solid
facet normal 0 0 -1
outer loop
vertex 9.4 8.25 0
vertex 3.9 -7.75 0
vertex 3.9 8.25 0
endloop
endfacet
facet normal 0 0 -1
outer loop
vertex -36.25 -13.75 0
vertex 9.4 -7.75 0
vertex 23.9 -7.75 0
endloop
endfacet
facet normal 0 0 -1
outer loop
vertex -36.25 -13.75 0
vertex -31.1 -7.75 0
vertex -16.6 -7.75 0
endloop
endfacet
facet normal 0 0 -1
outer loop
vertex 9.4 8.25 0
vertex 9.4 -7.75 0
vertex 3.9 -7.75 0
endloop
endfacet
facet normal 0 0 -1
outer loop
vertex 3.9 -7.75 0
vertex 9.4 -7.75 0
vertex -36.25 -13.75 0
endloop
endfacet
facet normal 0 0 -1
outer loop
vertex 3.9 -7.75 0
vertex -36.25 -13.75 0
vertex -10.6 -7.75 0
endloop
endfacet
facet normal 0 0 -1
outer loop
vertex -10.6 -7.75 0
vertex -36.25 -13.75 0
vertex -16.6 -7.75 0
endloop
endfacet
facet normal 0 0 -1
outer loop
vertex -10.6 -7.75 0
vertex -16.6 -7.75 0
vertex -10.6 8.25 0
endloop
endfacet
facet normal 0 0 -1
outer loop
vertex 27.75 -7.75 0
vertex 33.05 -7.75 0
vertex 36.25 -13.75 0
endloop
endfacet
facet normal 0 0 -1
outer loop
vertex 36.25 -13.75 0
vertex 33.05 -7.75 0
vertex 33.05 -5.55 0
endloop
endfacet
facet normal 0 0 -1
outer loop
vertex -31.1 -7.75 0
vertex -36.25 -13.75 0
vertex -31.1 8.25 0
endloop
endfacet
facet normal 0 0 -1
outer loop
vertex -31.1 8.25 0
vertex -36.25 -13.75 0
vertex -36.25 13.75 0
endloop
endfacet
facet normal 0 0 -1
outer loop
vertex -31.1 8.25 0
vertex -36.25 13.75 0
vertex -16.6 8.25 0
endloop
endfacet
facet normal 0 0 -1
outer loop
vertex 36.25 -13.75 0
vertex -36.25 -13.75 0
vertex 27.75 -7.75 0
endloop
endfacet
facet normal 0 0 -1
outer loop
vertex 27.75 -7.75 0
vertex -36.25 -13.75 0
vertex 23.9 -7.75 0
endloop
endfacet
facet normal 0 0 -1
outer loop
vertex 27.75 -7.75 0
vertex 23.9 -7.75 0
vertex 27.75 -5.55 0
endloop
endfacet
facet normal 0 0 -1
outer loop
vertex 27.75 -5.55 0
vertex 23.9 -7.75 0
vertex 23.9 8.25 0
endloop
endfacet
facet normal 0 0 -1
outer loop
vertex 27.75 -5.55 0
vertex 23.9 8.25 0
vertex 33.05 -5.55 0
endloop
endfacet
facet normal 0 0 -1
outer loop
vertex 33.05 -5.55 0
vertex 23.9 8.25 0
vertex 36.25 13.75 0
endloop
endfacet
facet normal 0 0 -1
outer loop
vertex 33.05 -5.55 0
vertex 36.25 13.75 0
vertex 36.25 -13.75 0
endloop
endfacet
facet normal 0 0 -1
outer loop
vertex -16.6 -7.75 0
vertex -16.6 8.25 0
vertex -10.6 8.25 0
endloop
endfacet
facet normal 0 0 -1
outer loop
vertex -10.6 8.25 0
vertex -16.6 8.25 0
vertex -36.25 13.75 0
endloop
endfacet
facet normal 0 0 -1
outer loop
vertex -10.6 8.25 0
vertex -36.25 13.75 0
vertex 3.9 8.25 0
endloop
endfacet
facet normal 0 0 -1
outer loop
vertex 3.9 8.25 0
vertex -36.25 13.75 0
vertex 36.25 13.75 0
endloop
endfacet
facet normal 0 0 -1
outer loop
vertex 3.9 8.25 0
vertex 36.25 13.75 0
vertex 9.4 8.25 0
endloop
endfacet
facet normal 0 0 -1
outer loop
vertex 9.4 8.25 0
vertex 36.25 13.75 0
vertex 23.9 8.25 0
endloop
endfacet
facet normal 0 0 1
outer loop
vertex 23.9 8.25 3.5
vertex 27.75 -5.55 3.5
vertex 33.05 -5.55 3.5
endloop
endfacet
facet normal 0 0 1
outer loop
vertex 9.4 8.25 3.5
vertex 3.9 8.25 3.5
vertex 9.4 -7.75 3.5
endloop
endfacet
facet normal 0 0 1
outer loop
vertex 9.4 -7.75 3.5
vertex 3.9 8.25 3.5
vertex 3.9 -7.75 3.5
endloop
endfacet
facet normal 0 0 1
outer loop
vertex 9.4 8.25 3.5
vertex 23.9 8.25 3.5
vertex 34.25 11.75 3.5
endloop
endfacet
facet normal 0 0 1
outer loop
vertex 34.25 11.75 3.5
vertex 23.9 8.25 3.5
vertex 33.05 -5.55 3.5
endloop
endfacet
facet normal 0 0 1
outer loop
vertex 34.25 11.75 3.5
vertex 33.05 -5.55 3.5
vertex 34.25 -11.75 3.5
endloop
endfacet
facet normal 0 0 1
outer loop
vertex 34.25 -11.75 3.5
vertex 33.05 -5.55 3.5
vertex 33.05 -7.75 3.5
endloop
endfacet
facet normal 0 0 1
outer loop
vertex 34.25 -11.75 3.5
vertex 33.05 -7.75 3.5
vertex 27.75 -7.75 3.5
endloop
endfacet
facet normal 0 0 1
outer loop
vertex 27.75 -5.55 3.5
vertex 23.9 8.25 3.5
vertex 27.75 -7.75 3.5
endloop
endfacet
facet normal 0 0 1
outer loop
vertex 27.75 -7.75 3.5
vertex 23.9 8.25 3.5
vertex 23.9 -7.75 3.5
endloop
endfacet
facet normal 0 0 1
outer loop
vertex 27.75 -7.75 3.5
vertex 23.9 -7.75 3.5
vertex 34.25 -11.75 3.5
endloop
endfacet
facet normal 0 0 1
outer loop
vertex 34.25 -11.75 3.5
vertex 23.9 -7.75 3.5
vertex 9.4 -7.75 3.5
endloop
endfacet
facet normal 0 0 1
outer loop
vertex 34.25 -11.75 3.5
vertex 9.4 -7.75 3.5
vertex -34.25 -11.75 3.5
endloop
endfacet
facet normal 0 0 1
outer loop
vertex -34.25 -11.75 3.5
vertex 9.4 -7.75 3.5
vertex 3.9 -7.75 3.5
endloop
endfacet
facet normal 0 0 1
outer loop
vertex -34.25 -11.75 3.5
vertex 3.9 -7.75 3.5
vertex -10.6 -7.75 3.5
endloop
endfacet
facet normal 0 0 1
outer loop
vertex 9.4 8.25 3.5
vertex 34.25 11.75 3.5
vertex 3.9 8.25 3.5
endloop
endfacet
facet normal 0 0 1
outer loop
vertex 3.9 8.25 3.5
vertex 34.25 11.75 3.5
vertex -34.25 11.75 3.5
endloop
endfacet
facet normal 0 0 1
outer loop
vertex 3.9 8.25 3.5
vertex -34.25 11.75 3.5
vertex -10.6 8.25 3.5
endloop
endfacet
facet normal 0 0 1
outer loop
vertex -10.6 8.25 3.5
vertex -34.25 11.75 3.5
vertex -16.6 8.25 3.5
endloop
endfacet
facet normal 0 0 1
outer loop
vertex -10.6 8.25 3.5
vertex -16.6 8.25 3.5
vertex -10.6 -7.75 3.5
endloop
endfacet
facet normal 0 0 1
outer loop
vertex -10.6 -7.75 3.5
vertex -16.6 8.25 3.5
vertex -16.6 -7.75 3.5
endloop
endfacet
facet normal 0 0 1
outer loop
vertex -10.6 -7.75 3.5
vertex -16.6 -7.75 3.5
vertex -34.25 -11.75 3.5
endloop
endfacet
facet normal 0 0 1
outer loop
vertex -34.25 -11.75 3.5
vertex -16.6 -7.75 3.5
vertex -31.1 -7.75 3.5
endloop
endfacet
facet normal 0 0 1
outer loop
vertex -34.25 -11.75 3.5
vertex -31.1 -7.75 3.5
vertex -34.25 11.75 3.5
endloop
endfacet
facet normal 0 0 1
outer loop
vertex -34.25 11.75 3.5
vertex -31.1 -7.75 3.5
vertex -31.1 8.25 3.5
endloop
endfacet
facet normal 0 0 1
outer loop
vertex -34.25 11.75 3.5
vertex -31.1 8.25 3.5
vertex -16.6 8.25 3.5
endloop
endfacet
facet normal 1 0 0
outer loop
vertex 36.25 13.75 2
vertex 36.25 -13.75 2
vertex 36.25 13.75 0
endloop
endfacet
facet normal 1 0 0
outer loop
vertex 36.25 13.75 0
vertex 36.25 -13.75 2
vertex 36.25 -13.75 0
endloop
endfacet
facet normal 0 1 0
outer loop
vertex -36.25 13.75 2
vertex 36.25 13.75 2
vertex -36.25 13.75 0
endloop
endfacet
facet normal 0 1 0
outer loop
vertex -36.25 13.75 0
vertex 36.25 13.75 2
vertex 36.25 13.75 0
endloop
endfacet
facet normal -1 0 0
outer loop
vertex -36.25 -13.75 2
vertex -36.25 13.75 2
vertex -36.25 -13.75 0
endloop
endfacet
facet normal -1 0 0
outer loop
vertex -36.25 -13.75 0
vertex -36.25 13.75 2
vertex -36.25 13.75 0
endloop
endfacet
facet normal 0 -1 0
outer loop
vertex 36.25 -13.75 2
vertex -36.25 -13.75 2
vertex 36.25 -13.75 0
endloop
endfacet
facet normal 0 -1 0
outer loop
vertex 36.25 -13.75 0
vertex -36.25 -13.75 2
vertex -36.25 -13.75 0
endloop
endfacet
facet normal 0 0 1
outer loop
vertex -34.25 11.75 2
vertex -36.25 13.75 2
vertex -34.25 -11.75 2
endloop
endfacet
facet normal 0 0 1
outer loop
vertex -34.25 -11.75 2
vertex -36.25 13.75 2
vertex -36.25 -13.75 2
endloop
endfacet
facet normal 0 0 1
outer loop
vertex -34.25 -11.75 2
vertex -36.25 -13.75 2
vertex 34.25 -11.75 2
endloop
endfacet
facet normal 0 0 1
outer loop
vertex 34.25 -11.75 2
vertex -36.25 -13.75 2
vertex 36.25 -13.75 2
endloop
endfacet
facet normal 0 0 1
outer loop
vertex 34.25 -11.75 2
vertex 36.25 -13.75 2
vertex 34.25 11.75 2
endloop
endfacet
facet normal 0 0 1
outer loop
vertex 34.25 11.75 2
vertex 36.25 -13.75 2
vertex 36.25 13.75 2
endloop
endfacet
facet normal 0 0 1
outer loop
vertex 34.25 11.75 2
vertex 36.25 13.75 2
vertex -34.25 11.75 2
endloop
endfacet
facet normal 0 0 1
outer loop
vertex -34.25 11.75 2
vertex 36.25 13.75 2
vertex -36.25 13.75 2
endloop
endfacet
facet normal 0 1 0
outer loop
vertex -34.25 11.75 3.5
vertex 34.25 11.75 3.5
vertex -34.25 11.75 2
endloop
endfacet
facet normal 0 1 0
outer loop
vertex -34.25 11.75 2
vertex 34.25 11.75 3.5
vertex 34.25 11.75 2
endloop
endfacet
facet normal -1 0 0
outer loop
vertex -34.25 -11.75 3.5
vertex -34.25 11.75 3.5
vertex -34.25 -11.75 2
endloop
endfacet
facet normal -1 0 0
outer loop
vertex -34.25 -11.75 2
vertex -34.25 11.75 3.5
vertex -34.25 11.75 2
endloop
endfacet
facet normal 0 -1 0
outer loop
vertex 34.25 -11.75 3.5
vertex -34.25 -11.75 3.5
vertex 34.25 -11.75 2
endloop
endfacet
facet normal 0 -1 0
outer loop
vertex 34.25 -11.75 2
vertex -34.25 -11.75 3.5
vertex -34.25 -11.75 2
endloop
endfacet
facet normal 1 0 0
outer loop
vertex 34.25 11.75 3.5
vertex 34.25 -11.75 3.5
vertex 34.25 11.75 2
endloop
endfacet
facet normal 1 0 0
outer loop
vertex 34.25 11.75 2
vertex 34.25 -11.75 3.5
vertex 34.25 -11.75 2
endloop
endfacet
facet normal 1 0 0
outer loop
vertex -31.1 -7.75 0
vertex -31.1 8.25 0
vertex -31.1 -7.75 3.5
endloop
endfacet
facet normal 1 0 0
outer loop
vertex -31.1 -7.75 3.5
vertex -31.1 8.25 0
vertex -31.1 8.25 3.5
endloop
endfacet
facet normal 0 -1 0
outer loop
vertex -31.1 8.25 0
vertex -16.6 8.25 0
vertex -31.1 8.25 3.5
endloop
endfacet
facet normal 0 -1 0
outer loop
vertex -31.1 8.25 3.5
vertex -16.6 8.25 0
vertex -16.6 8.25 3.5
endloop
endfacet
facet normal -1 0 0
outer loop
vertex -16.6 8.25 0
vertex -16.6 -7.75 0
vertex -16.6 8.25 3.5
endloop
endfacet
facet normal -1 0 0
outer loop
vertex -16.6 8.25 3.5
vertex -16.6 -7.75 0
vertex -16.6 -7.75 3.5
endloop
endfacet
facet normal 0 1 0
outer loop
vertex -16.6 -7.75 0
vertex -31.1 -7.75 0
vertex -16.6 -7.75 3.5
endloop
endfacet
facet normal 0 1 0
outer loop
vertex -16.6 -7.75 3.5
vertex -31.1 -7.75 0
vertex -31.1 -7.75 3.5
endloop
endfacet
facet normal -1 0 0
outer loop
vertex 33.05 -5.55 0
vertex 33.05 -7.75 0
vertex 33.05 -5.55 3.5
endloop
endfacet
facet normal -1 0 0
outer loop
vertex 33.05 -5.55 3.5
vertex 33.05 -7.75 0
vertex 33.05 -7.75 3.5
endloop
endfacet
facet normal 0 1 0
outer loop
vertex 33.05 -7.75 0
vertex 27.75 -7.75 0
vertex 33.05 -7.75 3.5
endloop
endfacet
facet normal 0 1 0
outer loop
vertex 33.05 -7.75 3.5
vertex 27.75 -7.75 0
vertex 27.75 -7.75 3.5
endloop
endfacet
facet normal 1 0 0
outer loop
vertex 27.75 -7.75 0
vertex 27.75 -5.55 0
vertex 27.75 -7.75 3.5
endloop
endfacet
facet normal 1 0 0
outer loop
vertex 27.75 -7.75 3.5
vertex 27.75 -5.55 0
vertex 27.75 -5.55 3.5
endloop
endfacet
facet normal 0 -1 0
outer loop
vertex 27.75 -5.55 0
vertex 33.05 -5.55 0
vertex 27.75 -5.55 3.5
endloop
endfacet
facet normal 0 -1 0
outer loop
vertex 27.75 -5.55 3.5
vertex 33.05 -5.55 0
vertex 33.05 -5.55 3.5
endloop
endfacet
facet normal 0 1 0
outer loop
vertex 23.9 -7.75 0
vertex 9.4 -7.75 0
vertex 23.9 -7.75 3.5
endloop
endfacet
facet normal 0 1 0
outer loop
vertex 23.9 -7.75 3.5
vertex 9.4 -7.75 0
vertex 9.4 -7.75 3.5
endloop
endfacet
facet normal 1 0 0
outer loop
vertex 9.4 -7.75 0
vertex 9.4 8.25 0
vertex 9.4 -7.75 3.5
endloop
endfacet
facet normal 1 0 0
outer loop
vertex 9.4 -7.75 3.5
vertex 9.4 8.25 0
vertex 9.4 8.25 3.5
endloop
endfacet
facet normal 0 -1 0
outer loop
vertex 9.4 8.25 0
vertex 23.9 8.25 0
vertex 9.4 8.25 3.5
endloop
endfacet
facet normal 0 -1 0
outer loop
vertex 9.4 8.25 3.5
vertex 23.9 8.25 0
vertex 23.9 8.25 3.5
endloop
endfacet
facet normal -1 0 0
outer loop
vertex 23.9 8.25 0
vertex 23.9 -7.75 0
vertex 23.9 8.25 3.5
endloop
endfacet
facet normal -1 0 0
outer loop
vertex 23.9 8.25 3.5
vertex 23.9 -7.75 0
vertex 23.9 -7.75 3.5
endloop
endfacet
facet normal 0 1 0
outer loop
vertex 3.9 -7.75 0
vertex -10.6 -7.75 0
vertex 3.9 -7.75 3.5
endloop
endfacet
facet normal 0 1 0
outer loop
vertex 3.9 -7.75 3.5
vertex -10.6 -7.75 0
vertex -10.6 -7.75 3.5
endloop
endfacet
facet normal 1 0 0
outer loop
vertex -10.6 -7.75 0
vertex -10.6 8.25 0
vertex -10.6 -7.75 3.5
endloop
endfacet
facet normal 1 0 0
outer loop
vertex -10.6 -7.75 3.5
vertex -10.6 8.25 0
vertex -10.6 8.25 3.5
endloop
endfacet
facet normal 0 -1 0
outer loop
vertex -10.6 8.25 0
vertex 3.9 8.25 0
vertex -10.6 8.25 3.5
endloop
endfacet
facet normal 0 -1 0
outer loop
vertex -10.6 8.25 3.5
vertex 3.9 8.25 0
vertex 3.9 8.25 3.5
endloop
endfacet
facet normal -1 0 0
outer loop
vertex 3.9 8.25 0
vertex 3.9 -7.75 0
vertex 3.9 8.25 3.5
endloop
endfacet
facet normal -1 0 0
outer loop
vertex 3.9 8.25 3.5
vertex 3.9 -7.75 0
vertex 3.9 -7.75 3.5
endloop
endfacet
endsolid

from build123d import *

# Parameters (mm, degrees)
SKICA1_W                 = 72.5
SKICA1_H                 = 27.5
P_IDAT_VYSUNUT_M1_DEPTH  = 2
SKICA2_W                 = 68.5
SKICA2_H                 = 23.5
P_IDAT_VYSUNUT_M2_DEPTH  = 1.5
SKICA3_W                 = 14.5
SKICA3_H                 = 16
SKICA3_W_2               = 5.3
SKICA3_H_2               = 2.2
ODEBRAT_VYSUNUT_M1_DEPTH = 39.927817817


with BuildPart() as part:
    # Skica1 → Přidat vysunutím1 (new body)
    with BuildSketch(Plane.XY):
        Rectangle(SKICA1_W, SKICA1_H)
    extrude(amount=P_IDAT_VYSUNUT_M1_DEPTH)

    # Skica2 → Přidat vysunutím2 (add)
    with BuildSketch(Plane.XY.offset(2)):
        Rectangle(SKICA2_W, SKICA2_H)
    extrude(amount=P_IDAT_VYSUNUT_M2_DEPTH)

    # Skica3 → Odebrat vysunutím1 (cut, through all)
    with BuildSketch(Plane.XY.offset(3.5)):
        with Locations((16.65, 0.25)):
            Rectangle(SKICA3_W, SKICA3_H)
        with Locations((-3.35, 0.25)):
            Rectangle(SKICA3_W, SKICA3_H)
        with Locations((-23.85, 0.25)):
            Rectangle(SKICA3_W, SKICA3_H)
        with Locations((30.4, -6.65)):
            Rectangle(SKICA3_W_2, SKICA3_H_2)
    extrude(amount=-ODEBRAT_VYSUNUT_M1_DEPTH, mode=Mode.SUBTRACT)


solid = part.part
